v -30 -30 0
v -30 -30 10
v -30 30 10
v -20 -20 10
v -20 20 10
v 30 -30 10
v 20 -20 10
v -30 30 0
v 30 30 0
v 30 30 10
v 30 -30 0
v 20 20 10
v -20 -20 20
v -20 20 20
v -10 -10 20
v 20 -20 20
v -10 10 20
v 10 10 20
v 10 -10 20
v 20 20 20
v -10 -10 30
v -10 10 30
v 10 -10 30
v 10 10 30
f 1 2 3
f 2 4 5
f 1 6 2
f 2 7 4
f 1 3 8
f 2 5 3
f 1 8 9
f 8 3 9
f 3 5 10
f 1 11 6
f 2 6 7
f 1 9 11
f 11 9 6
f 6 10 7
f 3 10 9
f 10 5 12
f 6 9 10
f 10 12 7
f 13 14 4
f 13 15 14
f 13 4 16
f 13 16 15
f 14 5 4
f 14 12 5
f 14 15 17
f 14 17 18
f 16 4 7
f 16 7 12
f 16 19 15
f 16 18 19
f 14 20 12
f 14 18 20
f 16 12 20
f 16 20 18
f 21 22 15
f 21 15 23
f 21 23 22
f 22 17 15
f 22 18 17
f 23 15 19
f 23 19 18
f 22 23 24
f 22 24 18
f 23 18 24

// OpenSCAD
// 3段の階段状ピラミッド
// 各段は中心を揃えて積み上げる

step_sizes = [60, 40, 20];  // 各段の一辺の長さ (mm)
step_height = 10;           // 各段の高さ (mm)

module stepped_pyramid(sizes, h) {
    for (i = [0 : len(sizes) - 1]) {
        translate([0, 0, i * h])
            cube([sizes[i], sizes[i], h], center = false);
    }
}

// 中心を揃えるために、各段を X/Y 方向にオフセットして配置
module stepped_pyramid_centered(sizes, h) {
    for (i = [0 : len(sizes) - 1]) {
        translate([0, 0, i * h])
            linear_extrude(height = h)
                square([sizes[i], sizes[i]], center = true);
    }
}

stepped_pyramid_centered(step_sizes, step_height);
